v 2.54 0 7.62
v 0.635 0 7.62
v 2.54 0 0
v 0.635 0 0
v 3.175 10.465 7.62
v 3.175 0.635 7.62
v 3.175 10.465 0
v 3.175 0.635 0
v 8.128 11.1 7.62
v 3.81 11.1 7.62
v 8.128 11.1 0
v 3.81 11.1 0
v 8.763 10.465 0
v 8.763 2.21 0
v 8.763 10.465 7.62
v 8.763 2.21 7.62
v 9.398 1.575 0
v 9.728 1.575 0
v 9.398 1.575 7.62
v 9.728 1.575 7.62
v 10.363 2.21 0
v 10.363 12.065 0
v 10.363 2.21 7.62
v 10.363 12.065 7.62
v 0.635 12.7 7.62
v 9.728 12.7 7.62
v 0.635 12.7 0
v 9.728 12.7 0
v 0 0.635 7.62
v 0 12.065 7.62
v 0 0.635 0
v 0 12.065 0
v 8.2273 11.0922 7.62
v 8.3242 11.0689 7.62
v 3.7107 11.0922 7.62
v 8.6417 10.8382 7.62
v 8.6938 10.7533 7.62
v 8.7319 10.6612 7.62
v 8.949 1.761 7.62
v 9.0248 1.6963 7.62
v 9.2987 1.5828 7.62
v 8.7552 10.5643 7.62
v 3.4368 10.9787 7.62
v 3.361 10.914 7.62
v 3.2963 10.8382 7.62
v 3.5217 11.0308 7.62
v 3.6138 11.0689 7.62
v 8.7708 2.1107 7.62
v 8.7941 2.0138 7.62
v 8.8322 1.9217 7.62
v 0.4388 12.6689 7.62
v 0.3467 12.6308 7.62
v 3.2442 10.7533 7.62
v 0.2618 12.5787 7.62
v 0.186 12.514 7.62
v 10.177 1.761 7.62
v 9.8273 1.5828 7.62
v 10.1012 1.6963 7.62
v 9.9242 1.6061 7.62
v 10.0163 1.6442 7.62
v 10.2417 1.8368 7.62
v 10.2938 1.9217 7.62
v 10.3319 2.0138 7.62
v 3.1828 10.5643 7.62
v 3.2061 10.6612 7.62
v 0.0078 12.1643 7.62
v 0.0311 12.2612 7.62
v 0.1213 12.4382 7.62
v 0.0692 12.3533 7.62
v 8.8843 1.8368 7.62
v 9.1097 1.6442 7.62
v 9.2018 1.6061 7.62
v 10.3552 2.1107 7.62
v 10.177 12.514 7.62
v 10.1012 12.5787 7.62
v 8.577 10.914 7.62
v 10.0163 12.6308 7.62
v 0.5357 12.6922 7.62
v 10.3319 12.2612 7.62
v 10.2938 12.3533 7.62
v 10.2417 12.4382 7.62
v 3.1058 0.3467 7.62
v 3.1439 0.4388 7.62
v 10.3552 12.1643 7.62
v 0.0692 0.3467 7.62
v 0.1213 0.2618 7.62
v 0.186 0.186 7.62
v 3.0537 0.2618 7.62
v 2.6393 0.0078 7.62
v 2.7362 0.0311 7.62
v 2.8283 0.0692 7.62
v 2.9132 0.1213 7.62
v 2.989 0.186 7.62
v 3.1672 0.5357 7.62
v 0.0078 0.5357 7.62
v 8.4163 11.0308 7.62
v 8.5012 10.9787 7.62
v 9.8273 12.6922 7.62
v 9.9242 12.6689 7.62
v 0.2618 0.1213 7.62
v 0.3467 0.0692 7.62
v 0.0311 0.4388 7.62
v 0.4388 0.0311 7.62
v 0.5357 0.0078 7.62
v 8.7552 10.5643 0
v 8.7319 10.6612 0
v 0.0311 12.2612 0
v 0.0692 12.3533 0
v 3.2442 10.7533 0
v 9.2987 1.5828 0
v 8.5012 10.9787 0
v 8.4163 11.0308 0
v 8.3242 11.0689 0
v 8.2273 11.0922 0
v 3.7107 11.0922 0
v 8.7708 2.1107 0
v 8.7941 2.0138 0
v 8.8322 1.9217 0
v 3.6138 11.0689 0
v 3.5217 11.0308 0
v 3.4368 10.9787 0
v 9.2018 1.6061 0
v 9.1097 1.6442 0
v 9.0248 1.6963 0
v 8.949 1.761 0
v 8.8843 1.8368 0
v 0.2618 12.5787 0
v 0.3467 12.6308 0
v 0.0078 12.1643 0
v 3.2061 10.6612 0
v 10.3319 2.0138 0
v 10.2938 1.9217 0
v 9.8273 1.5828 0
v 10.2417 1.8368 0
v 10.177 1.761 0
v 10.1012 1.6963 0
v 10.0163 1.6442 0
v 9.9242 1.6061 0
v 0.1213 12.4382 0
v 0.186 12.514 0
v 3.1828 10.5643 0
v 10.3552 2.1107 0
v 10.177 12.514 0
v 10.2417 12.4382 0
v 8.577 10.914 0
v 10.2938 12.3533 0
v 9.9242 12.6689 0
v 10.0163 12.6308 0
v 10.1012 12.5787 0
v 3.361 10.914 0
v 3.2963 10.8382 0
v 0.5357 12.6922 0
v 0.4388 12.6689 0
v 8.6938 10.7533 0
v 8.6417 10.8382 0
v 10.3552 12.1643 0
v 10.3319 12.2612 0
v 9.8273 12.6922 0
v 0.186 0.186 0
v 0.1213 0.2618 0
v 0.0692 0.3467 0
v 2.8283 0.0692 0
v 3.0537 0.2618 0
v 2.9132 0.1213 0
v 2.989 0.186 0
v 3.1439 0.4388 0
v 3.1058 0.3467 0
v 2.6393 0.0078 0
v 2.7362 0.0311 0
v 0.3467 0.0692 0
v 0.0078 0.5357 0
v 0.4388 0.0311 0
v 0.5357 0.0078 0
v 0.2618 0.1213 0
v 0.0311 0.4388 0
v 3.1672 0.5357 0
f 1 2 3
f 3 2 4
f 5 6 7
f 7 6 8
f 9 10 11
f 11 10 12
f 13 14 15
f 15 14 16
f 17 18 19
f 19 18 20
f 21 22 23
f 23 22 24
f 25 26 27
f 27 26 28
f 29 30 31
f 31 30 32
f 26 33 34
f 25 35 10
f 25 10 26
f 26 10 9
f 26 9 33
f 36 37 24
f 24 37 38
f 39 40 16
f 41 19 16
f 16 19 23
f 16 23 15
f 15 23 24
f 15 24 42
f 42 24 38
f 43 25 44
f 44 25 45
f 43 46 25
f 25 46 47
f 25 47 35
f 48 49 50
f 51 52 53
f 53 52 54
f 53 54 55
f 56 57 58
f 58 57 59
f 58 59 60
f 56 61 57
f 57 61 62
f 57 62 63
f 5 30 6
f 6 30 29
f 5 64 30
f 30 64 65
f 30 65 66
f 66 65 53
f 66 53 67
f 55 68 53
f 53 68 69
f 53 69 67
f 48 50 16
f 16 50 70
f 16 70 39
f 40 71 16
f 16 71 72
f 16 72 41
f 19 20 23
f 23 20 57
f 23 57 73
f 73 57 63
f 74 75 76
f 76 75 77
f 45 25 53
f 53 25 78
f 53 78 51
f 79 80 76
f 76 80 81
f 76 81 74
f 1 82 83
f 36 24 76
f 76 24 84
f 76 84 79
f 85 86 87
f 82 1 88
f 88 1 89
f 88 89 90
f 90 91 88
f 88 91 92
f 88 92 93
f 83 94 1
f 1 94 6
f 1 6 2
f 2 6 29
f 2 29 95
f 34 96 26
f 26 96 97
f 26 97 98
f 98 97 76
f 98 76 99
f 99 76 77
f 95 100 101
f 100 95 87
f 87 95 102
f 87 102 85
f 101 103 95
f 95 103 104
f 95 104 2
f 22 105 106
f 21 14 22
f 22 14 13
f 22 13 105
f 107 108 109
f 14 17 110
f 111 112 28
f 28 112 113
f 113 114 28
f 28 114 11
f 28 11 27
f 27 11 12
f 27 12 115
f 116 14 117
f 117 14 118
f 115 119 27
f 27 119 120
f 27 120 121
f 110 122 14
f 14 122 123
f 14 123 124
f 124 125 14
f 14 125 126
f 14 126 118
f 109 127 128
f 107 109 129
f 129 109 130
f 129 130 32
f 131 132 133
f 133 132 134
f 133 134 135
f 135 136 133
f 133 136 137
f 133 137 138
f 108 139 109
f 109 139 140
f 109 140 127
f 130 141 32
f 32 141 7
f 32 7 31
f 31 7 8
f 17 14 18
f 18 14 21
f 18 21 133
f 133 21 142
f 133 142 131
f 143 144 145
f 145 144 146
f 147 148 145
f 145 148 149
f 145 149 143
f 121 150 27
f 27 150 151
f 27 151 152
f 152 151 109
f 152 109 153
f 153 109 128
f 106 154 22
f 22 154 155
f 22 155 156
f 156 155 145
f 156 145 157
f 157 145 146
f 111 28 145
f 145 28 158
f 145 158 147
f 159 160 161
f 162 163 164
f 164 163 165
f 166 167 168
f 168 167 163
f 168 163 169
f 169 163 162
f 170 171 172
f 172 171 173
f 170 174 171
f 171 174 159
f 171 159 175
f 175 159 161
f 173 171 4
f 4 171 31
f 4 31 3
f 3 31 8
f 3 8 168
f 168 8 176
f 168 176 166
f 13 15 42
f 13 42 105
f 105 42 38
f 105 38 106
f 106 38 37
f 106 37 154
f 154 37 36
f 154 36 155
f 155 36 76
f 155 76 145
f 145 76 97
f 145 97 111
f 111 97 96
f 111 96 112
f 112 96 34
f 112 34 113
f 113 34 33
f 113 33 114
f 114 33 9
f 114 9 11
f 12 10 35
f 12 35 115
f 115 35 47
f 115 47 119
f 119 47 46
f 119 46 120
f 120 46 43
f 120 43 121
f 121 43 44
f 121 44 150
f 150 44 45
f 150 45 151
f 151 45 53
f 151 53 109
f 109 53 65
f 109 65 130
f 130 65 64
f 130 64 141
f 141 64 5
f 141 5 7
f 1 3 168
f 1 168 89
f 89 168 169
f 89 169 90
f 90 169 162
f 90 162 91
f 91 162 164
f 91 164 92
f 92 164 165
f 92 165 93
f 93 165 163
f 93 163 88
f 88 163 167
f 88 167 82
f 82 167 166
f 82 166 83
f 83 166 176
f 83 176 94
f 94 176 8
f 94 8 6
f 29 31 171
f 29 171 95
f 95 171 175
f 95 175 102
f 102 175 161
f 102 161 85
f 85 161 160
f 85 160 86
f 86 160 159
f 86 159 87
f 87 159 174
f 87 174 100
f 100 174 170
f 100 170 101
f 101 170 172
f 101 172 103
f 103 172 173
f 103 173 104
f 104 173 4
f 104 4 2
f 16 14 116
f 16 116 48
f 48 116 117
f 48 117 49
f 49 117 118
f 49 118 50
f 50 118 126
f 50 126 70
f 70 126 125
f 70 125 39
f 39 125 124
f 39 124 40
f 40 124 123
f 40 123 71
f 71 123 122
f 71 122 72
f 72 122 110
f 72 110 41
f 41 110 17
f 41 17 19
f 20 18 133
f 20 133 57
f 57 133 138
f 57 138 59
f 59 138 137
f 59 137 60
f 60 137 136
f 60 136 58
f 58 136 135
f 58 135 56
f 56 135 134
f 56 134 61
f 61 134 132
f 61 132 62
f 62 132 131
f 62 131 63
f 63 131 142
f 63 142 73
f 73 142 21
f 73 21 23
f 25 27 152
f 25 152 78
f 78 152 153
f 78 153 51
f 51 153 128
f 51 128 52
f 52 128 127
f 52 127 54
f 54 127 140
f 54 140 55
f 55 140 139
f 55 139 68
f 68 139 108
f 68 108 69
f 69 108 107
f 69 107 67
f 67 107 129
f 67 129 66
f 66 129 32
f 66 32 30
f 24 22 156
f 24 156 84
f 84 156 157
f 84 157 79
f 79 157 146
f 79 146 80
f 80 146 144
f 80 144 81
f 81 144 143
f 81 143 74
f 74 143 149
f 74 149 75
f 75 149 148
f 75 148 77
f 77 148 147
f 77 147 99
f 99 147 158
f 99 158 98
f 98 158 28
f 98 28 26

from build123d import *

# Parameters (mm, degrees)
BOSS_EXTRUDE1_DEPTH = 7.62
FILLET1_R           = 0.635


with BuildPart() as part:
    # Sketch1 → Boss-Extrude1 (new body)
    with BuildSketch(Plane.XY):
        Polygon((0, 0), (0, 12.7), (10.363, 12.7), (10.363, 1.575), (8.763, 1.575), (8.763, 11.1), (3.175, 11.1), (3.175, 0), align=None)
    extrude(amount=BOSS_EXTRUDE1_DEPTH)

    # Fillet1
    fillet1_edges = [part.edges().sort_by_distance(p)[0] for p in [
        (0, 0, 3.81),
        (0, 12.7, 3.81),
        (10.363, 12.7, 3.81),
        (10.363, 1.575, 3.81),
        (8.763, 1.575, 3.81),
        (8.763, 11.1, 3.81),
        (3.175, 11.1, 3.81),
        (3.175, 0, 3.81),
    ]]
    fillet(fillet1_edges, radius=FILLET1_R)


solid = part.part
